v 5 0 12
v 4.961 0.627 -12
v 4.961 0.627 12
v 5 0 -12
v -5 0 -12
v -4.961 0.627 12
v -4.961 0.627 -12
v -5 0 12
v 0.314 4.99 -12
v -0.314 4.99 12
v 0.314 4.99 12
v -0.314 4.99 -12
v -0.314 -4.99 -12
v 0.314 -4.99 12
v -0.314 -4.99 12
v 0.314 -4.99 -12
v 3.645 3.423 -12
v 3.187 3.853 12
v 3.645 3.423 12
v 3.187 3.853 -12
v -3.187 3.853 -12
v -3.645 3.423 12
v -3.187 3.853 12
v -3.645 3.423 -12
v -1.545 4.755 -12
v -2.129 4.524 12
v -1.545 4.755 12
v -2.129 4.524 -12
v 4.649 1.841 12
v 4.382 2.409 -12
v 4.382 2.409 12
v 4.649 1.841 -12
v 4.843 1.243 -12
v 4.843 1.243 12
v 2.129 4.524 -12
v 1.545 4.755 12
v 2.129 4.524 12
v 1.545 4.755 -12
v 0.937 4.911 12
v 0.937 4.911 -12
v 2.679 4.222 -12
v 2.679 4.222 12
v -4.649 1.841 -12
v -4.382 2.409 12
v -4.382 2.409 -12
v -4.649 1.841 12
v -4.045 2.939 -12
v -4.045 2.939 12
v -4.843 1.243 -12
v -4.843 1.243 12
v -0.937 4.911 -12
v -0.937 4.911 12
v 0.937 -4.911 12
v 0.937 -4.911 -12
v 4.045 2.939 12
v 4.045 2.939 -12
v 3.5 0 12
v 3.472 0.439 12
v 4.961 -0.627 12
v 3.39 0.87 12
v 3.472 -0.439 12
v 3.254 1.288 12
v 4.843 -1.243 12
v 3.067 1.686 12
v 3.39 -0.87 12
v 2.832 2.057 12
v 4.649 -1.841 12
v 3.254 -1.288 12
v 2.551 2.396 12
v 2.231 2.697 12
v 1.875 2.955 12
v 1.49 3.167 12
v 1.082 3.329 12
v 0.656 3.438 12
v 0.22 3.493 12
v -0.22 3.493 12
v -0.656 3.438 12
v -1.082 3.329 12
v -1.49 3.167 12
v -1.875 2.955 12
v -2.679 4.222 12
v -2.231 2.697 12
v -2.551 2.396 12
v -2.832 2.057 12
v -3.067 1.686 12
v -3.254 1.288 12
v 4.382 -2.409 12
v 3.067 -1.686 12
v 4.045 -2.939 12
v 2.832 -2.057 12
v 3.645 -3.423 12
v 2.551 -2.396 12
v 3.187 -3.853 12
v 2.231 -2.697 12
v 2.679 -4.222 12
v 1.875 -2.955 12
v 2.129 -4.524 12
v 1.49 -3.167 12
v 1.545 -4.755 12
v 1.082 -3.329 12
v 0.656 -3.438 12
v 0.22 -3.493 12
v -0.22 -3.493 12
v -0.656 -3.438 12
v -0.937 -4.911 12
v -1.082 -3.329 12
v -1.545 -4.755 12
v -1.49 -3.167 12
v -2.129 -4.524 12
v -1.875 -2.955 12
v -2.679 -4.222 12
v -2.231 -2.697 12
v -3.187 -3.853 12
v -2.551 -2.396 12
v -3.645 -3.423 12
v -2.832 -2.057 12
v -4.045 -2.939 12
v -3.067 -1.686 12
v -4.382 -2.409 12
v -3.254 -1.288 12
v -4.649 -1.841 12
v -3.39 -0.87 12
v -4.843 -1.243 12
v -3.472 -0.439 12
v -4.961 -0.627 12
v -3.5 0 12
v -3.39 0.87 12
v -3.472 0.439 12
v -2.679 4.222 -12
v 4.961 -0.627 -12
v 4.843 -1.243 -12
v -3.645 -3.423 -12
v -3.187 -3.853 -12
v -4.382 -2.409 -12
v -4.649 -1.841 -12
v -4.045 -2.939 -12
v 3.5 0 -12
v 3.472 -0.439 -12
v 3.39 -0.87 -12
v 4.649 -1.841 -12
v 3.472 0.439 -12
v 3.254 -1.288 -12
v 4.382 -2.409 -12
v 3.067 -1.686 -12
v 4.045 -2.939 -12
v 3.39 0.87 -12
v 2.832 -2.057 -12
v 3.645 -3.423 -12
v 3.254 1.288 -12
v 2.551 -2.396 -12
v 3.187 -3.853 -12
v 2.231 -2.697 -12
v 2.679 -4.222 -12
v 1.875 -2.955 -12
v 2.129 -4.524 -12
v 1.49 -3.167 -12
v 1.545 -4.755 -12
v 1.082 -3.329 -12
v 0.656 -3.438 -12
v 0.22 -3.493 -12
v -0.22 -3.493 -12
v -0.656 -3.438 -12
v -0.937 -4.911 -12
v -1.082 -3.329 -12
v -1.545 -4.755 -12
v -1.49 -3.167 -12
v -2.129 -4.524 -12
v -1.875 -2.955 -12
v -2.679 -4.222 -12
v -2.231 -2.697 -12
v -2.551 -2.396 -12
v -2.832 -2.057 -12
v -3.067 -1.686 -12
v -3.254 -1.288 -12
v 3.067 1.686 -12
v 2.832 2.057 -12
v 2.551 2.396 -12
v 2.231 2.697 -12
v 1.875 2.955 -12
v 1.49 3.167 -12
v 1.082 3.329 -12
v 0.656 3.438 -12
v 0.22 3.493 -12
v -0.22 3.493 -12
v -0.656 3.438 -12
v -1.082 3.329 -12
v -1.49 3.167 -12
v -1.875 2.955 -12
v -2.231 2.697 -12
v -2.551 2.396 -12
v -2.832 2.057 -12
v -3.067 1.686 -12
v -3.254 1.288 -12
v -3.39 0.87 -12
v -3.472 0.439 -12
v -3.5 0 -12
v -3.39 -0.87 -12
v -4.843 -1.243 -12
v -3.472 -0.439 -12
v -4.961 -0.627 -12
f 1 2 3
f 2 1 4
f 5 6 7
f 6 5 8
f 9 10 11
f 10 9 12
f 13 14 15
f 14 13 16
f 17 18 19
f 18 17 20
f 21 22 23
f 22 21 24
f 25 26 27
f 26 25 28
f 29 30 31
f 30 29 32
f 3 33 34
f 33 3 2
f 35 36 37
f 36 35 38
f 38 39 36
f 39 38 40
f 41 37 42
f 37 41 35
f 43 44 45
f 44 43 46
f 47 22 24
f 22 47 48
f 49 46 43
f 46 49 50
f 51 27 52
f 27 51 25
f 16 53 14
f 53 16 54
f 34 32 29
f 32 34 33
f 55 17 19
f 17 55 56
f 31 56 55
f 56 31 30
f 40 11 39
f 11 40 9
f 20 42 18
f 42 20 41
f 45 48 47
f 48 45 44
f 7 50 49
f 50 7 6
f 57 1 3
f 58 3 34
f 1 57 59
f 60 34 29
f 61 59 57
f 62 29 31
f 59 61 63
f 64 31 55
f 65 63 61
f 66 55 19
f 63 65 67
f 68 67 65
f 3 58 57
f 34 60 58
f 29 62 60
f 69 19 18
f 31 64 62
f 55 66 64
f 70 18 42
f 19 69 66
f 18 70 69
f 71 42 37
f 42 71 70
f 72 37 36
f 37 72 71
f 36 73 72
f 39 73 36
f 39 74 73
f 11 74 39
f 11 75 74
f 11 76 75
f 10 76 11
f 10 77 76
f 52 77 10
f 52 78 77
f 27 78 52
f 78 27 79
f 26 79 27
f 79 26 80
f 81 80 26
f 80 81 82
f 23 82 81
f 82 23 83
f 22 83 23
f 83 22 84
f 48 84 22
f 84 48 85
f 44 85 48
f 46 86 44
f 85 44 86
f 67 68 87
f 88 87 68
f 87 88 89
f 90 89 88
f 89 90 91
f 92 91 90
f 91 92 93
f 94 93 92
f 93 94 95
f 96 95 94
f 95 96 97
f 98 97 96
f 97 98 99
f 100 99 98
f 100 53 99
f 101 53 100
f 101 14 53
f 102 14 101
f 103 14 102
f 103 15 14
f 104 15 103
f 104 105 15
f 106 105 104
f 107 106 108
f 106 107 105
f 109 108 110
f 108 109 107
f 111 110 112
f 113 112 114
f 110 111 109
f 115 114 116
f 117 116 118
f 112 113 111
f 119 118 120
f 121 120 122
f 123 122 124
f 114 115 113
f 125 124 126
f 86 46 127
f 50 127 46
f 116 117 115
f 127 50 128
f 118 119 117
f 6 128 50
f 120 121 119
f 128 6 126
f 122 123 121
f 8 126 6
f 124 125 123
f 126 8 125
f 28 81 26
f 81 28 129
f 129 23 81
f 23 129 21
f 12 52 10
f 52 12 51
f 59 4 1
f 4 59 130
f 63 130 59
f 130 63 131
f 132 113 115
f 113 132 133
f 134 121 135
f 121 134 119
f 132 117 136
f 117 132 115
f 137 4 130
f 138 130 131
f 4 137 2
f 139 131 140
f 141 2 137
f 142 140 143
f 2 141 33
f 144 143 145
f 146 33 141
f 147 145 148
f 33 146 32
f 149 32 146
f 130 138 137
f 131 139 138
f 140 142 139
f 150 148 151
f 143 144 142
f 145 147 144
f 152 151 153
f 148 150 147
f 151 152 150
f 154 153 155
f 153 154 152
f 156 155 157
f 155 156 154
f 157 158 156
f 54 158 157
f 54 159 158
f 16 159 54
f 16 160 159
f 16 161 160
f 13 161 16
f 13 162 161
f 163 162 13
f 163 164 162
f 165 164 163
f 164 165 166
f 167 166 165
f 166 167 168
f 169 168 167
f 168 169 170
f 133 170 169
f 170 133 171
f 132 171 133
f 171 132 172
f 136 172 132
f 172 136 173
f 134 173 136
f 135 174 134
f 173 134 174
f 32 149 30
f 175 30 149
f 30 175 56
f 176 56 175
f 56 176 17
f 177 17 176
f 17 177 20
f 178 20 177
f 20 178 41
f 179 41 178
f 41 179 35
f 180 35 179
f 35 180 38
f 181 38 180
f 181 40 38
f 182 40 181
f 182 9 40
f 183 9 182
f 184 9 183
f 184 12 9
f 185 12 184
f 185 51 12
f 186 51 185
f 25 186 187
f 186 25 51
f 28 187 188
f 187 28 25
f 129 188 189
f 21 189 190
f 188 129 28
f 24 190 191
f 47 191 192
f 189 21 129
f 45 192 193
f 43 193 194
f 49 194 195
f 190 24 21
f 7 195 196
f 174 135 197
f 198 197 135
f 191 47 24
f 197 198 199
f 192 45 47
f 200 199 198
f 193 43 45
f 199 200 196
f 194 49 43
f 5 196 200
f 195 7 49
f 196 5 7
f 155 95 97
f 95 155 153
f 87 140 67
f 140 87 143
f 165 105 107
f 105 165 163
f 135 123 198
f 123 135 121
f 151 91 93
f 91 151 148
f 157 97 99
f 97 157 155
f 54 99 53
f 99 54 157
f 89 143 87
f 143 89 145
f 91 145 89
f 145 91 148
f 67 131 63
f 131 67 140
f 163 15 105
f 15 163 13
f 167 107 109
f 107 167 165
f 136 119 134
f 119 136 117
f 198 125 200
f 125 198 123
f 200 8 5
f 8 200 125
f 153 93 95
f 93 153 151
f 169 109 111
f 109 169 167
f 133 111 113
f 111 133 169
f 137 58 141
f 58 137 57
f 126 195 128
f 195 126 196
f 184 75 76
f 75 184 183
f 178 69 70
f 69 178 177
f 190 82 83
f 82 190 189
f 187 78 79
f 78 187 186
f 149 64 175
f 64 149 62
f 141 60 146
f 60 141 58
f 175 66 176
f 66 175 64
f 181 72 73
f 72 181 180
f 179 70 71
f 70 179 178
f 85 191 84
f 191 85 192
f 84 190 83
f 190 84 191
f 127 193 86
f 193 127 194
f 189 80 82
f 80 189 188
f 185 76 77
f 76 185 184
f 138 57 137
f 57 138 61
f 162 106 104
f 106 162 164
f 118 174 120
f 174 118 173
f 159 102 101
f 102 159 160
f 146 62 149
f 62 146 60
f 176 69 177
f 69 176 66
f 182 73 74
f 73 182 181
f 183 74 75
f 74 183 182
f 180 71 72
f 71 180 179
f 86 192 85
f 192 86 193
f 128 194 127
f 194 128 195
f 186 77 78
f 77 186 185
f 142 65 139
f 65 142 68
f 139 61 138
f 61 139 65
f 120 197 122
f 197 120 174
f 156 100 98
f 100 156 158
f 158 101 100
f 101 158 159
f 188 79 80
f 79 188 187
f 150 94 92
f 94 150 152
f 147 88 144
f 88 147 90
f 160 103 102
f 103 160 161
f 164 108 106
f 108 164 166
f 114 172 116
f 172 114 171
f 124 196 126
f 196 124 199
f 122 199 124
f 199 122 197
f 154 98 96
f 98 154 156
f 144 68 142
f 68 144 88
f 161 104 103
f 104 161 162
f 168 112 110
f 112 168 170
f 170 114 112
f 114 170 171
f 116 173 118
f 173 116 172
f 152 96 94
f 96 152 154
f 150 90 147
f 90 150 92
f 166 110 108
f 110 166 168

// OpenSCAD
$fn = 50;


difference() {
	union() {
		translate(v = [0, 0, -12.0000000000]) {
			cylinder(h = 24, r = 5.0000000000);
		}
	}
	union() {
		translate(v = [0, 0, -100.0000000000]) {
			cylinder(h = 200, r = 3.5000000000);
		}
	}
}
